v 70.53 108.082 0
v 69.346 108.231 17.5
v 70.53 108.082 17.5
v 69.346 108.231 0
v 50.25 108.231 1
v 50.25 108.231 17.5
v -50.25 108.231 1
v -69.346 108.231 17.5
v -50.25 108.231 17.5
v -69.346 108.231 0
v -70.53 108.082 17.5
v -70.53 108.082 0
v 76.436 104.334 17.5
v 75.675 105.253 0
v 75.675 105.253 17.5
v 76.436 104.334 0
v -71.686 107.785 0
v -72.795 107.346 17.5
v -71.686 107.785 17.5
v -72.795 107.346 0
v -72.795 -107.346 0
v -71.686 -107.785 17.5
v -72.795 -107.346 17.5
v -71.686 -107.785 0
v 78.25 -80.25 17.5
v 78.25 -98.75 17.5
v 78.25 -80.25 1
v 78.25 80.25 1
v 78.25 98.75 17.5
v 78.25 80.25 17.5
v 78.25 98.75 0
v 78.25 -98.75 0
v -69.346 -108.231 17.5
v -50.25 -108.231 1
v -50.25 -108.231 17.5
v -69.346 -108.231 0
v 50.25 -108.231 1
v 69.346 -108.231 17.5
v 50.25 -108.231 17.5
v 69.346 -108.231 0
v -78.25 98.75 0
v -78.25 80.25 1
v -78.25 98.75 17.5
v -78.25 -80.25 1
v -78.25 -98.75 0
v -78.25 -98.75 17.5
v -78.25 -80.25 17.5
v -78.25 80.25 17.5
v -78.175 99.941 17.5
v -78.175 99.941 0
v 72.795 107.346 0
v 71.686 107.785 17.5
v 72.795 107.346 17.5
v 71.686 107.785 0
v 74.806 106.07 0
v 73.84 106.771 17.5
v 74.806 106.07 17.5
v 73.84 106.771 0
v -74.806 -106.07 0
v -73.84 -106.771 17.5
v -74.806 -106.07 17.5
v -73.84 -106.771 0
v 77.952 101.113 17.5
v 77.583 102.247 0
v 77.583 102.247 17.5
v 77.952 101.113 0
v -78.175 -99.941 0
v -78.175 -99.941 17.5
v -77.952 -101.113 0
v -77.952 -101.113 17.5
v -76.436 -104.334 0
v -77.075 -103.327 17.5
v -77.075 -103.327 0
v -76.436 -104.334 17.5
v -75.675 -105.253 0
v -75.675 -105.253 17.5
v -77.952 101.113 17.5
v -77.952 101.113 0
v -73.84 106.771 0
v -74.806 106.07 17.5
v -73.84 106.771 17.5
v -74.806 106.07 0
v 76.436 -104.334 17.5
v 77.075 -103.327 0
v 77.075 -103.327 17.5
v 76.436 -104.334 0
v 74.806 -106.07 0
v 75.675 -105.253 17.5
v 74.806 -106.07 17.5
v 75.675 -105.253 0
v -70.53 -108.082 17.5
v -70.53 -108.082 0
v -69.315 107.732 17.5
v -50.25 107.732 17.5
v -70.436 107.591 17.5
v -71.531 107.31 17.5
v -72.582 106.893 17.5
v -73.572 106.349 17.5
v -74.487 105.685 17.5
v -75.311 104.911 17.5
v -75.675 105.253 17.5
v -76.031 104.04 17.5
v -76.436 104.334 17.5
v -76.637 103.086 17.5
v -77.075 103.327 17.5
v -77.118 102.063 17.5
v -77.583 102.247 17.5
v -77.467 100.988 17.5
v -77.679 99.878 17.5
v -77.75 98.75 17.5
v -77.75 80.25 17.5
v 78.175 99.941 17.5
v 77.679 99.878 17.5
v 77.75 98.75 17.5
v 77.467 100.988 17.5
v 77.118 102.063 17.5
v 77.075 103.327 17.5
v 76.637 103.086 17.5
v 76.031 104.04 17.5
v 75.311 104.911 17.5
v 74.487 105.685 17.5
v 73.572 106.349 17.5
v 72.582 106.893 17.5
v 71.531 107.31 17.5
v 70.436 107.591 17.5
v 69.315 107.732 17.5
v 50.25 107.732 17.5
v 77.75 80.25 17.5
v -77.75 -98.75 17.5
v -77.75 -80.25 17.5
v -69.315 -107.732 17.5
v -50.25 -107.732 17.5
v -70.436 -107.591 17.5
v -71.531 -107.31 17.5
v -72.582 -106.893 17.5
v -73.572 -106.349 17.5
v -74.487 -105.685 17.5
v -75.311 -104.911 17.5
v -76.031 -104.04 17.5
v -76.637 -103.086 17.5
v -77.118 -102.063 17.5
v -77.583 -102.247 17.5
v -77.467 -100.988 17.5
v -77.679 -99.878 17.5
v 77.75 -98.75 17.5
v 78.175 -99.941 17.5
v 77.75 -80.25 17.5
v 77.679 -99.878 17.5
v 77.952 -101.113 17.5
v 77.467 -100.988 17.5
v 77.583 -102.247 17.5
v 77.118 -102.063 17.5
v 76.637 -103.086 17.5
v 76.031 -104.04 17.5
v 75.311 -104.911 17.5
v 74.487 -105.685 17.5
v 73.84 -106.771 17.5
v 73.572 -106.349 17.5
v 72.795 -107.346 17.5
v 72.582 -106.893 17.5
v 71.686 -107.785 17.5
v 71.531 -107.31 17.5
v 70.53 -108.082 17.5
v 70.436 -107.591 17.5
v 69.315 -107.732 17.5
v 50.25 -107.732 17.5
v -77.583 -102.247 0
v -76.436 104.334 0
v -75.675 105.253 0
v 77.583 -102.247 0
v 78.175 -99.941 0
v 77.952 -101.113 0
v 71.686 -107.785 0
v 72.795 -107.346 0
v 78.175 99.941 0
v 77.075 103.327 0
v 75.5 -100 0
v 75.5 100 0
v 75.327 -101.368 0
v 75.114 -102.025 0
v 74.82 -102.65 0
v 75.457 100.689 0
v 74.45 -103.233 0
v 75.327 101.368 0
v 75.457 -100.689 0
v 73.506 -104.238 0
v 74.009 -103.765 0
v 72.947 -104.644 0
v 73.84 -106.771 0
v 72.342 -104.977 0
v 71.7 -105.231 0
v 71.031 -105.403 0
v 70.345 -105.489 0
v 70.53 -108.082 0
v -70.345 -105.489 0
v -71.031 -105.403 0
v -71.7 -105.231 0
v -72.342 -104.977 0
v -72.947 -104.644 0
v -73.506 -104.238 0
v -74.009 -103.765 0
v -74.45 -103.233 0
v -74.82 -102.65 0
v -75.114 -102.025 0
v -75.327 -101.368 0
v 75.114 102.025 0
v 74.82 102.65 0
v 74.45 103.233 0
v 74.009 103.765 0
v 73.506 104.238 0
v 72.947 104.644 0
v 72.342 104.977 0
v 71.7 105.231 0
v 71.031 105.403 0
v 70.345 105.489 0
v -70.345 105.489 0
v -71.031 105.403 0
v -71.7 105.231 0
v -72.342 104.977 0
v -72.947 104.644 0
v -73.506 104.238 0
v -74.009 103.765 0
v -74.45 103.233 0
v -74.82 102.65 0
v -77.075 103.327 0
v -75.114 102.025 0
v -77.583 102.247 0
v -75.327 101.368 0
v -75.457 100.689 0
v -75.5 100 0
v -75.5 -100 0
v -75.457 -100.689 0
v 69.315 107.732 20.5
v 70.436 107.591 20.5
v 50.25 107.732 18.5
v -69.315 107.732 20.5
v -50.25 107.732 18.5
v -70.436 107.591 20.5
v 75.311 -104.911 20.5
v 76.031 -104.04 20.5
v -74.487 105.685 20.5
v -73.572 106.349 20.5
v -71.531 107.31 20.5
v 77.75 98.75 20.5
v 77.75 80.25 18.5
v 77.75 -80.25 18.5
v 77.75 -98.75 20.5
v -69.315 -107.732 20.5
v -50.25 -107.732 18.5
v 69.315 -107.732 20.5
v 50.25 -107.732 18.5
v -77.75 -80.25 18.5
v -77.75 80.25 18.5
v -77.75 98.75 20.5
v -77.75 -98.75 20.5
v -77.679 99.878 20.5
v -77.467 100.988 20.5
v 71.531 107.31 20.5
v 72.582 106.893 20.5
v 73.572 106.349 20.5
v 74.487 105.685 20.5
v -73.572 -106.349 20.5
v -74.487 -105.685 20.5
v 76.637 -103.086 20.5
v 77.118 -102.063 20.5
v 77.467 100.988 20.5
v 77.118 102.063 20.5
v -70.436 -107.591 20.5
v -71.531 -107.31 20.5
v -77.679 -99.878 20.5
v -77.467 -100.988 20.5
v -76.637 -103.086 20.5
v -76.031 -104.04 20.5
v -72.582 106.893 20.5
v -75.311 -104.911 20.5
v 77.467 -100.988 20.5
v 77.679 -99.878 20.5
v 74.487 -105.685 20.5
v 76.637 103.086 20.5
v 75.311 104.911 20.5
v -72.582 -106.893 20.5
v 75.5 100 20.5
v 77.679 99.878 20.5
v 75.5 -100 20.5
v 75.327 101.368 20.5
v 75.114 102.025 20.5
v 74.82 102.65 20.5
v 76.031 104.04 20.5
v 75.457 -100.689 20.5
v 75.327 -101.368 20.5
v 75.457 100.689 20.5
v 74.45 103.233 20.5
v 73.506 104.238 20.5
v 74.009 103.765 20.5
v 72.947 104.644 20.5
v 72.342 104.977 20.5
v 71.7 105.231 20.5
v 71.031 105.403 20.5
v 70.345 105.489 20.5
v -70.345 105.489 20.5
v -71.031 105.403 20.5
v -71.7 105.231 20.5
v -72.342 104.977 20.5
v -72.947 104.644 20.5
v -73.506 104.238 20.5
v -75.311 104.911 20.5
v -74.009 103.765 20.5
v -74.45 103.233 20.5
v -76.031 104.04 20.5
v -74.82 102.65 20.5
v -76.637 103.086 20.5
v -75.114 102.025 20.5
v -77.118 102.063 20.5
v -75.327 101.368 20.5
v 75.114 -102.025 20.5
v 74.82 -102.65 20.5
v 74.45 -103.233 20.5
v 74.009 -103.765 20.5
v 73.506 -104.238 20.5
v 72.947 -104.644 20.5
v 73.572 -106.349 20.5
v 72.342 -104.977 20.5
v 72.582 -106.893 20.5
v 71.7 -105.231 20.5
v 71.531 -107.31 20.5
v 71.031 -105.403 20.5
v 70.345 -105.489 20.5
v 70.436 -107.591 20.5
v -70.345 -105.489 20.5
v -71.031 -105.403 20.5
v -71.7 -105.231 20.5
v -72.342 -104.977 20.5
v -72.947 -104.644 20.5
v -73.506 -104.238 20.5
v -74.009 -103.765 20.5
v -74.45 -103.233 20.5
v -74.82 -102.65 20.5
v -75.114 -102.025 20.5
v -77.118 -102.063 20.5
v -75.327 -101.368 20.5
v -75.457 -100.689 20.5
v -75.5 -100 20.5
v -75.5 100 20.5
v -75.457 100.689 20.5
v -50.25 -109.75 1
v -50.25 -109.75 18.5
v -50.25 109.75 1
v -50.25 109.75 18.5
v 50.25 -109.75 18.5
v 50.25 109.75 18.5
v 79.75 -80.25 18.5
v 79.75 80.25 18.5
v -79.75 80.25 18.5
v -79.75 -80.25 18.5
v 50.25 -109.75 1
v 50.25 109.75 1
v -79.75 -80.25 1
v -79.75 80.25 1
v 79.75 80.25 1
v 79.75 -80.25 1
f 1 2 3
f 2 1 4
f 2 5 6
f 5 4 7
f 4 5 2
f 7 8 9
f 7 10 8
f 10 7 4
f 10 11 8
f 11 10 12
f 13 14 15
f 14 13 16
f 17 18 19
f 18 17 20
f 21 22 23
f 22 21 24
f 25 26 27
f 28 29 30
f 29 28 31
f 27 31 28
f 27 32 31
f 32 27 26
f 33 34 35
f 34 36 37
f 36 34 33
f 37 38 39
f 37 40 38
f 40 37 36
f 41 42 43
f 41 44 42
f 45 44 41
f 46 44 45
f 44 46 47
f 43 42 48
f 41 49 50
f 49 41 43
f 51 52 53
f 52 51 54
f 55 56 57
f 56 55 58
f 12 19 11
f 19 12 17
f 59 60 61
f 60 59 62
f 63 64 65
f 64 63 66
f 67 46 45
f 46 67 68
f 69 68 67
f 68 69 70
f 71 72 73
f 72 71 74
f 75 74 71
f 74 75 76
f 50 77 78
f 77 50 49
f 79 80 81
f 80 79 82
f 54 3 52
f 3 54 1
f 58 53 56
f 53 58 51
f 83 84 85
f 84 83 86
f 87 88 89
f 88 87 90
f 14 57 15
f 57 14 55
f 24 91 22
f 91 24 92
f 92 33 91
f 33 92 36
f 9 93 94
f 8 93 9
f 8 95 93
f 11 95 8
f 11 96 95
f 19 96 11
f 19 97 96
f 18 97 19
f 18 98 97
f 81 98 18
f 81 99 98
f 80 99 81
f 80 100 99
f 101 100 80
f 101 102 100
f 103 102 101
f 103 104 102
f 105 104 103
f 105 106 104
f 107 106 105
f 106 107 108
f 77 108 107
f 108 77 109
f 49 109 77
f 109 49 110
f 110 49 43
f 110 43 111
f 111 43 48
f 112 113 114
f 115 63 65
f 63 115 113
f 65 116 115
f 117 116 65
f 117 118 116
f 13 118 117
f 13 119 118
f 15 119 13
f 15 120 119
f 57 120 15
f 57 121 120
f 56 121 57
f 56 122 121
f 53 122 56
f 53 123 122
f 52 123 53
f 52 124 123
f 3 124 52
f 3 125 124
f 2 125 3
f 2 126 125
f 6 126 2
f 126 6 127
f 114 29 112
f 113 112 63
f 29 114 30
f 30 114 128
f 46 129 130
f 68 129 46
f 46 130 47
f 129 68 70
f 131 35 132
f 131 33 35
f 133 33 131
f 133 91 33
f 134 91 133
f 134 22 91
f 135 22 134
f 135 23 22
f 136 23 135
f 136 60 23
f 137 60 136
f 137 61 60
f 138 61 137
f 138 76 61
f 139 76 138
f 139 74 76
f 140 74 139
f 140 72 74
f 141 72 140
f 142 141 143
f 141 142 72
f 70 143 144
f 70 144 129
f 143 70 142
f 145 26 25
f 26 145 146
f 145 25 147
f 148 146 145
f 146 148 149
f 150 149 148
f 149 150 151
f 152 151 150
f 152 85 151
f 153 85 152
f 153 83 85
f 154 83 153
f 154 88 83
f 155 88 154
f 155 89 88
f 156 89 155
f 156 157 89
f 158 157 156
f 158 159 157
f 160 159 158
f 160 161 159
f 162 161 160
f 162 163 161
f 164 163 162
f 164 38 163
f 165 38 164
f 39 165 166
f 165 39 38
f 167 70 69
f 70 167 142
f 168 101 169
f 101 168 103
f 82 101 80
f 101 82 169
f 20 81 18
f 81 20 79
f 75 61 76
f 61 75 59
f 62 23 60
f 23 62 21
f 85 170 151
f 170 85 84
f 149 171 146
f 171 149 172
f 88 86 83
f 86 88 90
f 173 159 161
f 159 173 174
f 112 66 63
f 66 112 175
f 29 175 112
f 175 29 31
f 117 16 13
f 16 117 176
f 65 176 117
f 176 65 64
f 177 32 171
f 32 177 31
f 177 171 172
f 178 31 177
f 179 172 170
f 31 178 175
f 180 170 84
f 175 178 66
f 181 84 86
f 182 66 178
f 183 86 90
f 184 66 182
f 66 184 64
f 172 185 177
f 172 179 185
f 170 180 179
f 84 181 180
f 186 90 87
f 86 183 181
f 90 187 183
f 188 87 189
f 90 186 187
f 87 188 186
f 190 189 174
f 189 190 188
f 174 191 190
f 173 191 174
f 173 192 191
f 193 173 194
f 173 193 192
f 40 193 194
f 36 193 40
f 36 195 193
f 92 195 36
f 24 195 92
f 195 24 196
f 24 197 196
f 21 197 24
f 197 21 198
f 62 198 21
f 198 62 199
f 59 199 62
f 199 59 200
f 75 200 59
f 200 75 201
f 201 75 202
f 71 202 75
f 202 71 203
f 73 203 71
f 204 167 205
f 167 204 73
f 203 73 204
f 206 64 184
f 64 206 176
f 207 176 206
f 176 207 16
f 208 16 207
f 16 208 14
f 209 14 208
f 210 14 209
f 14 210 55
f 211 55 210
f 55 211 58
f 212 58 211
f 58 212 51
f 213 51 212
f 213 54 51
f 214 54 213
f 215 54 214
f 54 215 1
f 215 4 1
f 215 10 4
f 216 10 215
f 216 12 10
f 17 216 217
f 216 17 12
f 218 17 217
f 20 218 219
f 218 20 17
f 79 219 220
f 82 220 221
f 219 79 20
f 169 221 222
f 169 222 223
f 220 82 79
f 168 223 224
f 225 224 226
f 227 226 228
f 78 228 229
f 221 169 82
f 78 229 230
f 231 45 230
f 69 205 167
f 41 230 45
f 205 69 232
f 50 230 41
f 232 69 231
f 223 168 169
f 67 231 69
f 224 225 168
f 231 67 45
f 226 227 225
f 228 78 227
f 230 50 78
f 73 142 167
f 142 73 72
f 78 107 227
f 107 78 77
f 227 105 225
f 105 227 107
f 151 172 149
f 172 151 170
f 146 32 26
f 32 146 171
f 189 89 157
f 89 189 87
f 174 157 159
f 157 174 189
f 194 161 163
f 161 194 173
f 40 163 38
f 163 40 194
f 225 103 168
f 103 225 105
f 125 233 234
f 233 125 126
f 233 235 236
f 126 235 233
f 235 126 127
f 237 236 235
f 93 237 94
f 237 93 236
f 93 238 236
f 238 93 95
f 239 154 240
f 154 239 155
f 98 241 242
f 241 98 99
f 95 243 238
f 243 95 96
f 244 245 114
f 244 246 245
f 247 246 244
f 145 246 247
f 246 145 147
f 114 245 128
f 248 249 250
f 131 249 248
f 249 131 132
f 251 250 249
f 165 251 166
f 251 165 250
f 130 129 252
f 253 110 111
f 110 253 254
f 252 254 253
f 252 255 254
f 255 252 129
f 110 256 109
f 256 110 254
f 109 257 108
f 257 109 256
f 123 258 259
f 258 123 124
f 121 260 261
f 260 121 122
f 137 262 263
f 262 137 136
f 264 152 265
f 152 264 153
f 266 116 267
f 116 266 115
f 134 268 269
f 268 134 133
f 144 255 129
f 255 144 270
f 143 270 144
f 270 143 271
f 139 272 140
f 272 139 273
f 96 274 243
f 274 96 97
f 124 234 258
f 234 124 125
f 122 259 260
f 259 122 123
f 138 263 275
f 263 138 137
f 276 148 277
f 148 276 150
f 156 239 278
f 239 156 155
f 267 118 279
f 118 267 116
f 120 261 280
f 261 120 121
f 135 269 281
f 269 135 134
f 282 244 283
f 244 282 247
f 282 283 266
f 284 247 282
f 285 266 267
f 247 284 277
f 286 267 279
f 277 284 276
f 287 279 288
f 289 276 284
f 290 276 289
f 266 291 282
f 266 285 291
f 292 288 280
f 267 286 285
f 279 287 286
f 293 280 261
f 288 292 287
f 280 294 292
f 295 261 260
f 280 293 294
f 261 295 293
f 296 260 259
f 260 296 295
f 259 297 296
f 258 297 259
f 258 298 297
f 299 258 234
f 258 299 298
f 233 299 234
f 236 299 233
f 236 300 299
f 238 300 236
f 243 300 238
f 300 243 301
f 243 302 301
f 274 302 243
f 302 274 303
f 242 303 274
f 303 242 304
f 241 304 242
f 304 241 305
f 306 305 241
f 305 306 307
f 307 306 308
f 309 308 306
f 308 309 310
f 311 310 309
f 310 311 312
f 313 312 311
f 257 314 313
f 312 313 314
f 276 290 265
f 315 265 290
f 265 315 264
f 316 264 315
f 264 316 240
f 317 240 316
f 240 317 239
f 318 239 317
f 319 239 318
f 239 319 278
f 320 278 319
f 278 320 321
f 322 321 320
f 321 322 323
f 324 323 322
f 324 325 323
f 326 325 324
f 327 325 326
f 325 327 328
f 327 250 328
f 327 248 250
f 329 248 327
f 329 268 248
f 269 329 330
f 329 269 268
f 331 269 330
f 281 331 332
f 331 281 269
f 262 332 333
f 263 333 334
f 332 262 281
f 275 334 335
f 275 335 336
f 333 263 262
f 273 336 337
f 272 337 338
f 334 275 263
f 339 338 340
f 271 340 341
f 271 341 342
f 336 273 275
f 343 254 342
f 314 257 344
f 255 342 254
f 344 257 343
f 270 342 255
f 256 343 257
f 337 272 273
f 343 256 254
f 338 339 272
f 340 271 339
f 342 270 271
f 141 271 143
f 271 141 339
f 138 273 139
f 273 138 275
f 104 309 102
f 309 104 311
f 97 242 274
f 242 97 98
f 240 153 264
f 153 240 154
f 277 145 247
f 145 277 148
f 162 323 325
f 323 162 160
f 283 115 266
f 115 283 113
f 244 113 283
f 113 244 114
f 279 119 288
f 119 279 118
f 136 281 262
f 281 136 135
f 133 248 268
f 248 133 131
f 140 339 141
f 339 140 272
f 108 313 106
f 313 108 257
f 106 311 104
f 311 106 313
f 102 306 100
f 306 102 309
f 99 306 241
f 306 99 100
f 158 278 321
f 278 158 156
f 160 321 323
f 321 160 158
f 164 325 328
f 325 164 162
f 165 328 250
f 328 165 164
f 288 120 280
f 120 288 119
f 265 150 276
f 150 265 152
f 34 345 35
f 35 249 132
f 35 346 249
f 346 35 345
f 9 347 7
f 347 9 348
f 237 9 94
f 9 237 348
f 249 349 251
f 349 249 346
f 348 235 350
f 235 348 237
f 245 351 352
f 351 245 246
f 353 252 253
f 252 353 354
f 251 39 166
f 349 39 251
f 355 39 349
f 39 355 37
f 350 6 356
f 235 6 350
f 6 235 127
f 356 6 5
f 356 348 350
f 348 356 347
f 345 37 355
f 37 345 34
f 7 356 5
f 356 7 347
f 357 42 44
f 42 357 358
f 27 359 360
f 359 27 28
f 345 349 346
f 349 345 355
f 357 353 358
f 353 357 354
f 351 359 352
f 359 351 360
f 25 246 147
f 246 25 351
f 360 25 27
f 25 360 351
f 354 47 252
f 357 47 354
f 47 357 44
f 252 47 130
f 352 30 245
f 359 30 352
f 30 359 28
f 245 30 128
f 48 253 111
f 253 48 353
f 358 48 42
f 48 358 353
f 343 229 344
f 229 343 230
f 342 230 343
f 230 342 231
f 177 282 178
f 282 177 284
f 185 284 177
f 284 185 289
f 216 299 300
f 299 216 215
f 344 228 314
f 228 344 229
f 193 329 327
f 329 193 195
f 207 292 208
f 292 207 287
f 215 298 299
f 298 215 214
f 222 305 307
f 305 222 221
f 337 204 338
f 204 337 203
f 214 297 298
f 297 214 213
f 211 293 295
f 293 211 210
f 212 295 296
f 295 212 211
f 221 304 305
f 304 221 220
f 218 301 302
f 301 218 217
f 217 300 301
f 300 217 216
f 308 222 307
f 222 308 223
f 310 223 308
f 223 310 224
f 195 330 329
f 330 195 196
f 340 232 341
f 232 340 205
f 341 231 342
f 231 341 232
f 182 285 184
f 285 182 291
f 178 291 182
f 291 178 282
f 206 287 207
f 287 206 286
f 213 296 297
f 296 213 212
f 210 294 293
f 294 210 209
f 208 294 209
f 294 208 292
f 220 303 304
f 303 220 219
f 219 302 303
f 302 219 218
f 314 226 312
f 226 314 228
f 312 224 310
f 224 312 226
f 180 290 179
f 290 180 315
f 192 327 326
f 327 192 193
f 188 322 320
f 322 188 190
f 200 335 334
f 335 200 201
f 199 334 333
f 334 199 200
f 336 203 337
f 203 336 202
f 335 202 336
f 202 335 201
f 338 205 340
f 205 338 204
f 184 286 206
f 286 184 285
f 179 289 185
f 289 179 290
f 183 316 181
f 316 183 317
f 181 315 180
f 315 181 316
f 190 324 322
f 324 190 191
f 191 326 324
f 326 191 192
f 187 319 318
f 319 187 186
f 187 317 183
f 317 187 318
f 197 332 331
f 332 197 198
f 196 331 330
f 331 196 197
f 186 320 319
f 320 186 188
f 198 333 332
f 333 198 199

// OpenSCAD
$fn = 50;


difference() {
	union() {
		hull() {
			translate(v = [-68.7500000000, 98.7500000000, 0]) {
				cylinder(h = 17.5000000000, r = 9.5000000000);
			}
			translate(v = [68.7500000000, 98.7500000000, 0]) {
				cylinder(h = 17.5000000000, r = 9.5000000000);
			}
			translate(v = [-68.7500000000, -98.7500000000, 0]) {
				cylinder(h = 17.5000000000, r = 9.5000000000);
			}
			translate(v = [68.7500000000, -98.7500000000, 0]) {
				cylinder(h = 17.5000000000, r = 9.5000000000);
			}
		}
		hull() {
			translate(v = [-68.7500000000, 98.7500000000, 0]) {
				cylinder(h = 20.5000000000, r = 9);
			}
			translate(v = [68.7500000000, 98.7500000000, 0]) {
				cylinder(h = 20.5000000000, r = 9);
			}
			translate(v = [-68.7500000000, -98.7500000000, 0]) {
				cylinder(h = 20.5000000000, r = 9);
			}
			translate(v = [68.7500000000, -98.7500000000, 0]) {
				cylinder(h = 20.5000000000, r = 9);
			}
		}
		translate(v = [-50.2500000000, -109.7500000000, 1]) {
			cube(size = [100.5000000000, 219.5000000000, 17.5000000000]);
		}
		translate(v = [-79.7500000000, -80.2500000000, 1]) {
			cube(size = [159.5000000000, 160.5000000000, 17.5000000000]);
		}
	}
	union() {
		hull() {
			translate(v = [-70.0000000000, 100.0000000000, 0]) {
				cylinder(h = 20.5000000000, r = 5.5000000000);
			}
			translate(v = [70.0000000000, 100.0000000000, 0]) {
				cylinder(h = 20.5000000000, r = 5.5000000000);
			}
			translate(v = [-70.0000000000, -100.0000000000, 0]) {
				cylinder(h = 20.5000000000, r = 5.5000000000);
			}
			translate(v = [70.0000000000, -100.0000000000, 0]) {
				cylinder(h = 20.5000000000, r = 5.5000000000);
			}
		}
	}
}
